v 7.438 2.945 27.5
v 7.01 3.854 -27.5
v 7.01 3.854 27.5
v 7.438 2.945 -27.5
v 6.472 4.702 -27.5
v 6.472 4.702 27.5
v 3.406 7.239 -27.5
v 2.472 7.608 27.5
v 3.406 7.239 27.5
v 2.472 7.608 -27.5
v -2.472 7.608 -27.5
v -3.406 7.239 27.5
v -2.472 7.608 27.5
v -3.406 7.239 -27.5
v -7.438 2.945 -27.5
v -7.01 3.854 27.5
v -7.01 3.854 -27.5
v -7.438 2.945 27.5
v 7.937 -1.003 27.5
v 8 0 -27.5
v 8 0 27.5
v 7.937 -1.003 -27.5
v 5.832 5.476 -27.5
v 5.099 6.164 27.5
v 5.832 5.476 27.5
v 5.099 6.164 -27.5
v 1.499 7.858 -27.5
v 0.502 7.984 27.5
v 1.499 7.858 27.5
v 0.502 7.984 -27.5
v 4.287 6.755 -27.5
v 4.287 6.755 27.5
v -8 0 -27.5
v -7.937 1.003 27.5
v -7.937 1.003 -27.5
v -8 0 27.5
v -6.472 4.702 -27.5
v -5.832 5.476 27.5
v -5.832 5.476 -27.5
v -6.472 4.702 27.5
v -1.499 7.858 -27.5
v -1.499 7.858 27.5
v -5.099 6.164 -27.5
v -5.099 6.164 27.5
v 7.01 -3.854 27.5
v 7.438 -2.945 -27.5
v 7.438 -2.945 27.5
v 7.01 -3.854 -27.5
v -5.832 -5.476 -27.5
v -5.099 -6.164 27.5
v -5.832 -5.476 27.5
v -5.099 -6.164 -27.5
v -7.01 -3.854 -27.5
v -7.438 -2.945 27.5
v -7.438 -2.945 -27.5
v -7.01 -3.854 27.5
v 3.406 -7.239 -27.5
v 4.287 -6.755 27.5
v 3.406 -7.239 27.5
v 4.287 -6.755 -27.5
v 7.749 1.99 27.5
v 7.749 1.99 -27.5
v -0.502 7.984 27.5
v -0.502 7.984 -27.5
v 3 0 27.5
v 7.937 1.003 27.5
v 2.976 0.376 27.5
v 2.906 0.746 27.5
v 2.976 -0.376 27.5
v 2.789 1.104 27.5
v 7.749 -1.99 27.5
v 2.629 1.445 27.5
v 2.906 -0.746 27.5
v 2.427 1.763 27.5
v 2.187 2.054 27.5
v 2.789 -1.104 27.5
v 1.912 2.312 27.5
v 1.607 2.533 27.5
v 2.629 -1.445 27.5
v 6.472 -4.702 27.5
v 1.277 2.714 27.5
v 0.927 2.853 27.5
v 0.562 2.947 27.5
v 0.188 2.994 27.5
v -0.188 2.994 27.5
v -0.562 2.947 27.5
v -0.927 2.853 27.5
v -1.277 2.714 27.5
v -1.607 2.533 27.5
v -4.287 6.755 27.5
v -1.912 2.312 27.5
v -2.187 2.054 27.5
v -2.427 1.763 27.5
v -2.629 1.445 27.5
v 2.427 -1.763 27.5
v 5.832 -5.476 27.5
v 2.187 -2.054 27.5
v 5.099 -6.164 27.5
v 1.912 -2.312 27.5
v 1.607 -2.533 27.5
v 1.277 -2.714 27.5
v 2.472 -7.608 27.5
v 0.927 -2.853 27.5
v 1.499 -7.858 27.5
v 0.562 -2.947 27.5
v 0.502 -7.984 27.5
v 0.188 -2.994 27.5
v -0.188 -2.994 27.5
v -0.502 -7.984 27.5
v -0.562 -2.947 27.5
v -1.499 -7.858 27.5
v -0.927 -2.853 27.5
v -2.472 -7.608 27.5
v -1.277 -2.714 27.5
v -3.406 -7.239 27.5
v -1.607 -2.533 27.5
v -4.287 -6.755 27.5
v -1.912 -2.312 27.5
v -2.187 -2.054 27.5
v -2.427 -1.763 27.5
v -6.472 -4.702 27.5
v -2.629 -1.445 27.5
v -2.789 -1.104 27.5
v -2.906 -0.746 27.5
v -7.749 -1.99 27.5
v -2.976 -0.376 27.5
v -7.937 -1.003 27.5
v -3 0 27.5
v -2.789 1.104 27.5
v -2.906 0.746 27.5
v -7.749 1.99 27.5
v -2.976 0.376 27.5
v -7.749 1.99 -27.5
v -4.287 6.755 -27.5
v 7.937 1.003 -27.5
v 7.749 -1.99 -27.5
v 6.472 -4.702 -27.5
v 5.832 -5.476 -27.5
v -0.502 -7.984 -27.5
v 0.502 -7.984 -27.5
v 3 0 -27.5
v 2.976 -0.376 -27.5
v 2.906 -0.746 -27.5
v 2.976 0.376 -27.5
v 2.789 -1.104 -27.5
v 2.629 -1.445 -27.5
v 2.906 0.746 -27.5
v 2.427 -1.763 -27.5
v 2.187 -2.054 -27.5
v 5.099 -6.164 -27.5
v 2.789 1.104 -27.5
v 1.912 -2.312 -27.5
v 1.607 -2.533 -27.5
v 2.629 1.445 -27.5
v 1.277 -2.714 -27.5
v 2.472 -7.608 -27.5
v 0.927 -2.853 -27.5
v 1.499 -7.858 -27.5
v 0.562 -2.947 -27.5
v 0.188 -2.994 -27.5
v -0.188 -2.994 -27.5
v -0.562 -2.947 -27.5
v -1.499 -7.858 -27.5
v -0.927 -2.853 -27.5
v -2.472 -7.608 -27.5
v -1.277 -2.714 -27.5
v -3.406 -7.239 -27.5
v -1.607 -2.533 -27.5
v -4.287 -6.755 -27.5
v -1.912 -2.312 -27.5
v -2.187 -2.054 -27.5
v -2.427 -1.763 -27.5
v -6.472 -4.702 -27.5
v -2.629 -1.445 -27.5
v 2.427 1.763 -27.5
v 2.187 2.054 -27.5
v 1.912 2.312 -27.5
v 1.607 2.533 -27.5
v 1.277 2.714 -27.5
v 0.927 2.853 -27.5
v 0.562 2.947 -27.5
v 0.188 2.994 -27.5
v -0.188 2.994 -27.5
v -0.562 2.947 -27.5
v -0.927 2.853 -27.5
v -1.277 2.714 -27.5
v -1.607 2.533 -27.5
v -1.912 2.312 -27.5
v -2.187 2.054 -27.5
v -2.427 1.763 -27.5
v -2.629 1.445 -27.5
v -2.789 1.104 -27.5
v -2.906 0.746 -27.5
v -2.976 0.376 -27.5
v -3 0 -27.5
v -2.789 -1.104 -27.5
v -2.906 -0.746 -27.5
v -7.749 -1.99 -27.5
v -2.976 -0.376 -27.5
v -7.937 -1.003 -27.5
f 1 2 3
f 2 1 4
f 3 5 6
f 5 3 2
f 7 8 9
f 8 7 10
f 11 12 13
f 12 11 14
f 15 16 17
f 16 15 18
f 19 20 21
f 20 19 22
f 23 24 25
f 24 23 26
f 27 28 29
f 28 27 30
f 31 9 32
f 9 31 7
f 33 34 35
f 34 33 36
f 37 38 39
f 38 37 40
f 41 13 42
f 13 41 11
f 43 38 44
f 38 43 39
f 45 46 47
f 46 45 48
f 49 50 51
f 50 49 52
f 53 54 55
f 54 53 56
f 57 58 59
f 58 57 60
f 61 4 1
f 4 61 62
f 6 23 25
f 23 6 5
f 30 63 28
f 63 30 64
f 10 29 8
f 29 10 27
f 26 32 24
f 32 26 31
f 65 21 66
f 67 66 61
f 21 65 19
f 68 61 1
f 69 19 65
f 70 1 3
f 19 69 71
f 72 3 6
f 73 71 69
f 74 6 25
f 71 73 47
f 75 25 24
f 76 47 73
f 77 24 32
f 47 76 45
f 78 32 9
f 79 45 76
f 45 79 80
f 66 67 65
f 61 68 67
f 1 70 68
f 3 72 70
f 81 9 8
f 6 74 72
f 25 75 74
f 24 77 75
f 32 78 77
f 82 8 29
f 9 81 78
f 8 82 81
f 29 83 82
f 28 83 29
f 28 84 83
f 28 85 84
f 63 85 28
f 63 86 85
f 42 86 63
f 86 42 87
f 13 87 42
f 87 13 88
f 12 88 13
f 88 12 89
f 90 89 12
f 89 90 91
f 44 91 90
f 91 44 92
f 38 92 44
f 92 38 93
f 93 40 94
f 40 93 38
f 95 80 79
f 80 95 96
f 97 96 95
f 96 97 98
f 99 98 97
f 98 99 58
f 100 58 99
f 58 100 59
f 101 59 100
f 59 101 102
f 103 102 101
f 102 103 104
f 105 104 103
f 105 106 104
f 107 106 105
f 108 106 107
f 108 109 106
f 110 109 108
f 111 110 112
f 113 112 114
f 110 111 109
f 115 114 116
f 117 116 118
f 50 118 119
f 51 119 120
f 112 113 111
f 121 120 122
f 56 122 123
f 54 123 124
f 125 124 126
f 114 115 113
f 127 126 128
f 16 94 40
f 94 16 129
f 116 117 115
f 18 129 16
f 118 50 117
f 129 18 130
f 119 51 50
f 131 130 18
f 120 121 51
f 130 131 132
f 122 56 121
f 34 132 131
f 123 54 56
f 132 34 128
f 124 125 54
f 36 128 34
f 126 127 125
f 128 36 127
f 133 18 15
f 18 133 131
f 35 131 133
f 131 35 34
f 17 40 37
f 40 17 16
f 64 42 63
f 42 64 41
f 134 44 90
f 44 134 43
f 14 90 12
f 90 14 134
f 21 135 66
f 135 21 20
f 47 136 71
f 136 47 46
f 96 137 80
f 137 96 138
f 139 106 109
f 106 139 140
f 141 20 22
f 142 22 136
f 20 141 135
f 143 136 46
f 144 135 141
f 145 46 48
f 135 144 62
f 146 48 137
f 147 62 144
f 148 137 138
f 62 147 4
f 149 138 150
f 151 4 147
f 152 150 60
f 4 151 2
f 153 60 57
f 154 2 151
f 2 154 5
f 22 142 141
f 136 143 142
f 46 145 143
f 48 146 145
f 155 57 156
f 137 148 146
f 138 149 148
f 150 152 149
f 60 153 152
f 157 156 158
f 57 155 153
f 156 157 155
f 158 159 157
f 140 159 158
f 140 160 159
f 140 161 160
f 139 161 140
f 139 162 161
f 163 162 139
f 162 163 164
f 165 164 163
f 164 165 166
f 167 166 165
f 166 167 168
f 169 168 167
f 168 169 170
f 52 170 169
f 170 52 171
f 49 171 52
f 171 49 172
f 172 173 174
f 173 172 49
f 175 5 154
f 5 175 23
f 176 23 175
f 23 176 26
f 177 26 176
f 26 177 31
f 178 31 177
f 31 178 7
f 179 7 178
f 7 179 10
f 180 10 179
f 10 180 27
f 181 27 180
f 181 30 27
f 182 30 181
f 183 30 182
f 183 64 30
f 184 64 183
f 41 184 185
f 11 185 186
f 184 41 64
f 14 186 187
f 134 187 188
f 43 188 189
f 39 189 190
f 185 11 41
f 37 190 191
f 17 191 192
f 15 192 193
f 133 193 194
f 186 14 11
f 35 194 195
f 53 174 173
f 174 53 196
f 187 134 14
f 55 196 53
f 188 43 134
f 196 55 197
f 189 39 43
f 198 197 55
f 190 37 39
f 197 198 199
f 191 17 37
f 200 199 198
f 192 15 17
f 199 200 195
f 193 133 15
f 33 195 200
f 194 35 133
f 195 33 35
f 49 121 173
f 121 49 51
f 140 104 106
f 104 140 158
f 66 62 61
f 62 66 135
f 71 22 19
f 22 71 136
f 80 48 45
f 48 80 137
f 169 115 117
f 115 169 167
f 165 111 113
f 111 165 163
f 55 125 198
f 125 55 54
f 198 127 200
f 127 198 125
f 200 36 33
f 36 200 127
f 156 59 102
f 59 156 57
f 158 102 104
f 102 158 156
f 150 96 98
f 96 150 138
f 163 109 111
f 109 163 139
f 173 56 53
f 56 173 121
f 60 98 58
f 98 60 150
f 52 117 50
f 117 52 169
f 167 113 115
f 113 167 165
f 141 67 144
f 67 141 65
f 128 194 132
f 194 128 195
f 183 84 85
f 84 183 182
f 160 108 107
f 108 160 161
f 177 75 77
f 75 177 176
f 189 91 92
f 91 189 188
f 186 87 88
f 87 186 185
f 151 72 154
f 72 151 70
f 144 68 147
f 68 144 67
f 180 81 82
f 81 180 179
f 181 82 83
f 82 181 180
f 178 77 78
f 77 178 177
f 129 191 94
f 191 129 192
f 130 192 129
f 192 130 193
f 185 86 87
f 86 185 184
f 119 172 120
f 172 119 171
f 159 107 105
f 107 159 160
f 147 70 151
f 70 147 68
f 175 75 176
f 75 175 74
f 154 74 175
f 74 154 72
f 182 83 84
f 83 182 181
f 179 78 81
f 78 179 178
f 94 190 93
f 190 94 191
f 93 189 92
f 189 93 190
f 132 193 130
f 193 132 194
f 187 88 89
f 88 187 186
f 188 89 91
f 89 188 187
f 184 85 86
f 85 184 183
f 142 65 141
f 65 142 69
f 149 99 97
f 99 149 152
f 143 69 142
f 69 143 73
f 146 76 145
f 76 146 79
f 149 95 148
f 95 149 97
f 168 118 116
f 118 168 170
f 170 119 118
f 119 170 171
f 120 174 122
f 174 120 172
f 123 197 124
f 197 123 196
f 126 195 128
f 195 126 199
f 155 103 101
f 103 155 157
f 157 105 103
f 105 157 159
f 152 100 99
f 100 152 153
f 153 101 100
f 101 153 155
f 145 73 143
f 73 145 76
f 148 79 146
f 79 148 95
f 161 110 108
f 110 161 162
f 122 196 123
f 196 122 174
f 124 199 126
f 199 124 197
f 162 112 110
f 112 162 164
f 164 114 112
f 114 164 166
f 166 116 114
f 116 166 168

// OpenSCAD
$fn = 50;


difference() {
	union() {
		translate(v = [0, 0, -27.5000000000]) {
			cylinder(h = 55, r = 8.0000000000);
		}
	}
	union() {
		translate(v = [0, 0, -100.0000000000]) {
			cylinder(h = 200, r = 3.0000000000);
		}
	}
}
